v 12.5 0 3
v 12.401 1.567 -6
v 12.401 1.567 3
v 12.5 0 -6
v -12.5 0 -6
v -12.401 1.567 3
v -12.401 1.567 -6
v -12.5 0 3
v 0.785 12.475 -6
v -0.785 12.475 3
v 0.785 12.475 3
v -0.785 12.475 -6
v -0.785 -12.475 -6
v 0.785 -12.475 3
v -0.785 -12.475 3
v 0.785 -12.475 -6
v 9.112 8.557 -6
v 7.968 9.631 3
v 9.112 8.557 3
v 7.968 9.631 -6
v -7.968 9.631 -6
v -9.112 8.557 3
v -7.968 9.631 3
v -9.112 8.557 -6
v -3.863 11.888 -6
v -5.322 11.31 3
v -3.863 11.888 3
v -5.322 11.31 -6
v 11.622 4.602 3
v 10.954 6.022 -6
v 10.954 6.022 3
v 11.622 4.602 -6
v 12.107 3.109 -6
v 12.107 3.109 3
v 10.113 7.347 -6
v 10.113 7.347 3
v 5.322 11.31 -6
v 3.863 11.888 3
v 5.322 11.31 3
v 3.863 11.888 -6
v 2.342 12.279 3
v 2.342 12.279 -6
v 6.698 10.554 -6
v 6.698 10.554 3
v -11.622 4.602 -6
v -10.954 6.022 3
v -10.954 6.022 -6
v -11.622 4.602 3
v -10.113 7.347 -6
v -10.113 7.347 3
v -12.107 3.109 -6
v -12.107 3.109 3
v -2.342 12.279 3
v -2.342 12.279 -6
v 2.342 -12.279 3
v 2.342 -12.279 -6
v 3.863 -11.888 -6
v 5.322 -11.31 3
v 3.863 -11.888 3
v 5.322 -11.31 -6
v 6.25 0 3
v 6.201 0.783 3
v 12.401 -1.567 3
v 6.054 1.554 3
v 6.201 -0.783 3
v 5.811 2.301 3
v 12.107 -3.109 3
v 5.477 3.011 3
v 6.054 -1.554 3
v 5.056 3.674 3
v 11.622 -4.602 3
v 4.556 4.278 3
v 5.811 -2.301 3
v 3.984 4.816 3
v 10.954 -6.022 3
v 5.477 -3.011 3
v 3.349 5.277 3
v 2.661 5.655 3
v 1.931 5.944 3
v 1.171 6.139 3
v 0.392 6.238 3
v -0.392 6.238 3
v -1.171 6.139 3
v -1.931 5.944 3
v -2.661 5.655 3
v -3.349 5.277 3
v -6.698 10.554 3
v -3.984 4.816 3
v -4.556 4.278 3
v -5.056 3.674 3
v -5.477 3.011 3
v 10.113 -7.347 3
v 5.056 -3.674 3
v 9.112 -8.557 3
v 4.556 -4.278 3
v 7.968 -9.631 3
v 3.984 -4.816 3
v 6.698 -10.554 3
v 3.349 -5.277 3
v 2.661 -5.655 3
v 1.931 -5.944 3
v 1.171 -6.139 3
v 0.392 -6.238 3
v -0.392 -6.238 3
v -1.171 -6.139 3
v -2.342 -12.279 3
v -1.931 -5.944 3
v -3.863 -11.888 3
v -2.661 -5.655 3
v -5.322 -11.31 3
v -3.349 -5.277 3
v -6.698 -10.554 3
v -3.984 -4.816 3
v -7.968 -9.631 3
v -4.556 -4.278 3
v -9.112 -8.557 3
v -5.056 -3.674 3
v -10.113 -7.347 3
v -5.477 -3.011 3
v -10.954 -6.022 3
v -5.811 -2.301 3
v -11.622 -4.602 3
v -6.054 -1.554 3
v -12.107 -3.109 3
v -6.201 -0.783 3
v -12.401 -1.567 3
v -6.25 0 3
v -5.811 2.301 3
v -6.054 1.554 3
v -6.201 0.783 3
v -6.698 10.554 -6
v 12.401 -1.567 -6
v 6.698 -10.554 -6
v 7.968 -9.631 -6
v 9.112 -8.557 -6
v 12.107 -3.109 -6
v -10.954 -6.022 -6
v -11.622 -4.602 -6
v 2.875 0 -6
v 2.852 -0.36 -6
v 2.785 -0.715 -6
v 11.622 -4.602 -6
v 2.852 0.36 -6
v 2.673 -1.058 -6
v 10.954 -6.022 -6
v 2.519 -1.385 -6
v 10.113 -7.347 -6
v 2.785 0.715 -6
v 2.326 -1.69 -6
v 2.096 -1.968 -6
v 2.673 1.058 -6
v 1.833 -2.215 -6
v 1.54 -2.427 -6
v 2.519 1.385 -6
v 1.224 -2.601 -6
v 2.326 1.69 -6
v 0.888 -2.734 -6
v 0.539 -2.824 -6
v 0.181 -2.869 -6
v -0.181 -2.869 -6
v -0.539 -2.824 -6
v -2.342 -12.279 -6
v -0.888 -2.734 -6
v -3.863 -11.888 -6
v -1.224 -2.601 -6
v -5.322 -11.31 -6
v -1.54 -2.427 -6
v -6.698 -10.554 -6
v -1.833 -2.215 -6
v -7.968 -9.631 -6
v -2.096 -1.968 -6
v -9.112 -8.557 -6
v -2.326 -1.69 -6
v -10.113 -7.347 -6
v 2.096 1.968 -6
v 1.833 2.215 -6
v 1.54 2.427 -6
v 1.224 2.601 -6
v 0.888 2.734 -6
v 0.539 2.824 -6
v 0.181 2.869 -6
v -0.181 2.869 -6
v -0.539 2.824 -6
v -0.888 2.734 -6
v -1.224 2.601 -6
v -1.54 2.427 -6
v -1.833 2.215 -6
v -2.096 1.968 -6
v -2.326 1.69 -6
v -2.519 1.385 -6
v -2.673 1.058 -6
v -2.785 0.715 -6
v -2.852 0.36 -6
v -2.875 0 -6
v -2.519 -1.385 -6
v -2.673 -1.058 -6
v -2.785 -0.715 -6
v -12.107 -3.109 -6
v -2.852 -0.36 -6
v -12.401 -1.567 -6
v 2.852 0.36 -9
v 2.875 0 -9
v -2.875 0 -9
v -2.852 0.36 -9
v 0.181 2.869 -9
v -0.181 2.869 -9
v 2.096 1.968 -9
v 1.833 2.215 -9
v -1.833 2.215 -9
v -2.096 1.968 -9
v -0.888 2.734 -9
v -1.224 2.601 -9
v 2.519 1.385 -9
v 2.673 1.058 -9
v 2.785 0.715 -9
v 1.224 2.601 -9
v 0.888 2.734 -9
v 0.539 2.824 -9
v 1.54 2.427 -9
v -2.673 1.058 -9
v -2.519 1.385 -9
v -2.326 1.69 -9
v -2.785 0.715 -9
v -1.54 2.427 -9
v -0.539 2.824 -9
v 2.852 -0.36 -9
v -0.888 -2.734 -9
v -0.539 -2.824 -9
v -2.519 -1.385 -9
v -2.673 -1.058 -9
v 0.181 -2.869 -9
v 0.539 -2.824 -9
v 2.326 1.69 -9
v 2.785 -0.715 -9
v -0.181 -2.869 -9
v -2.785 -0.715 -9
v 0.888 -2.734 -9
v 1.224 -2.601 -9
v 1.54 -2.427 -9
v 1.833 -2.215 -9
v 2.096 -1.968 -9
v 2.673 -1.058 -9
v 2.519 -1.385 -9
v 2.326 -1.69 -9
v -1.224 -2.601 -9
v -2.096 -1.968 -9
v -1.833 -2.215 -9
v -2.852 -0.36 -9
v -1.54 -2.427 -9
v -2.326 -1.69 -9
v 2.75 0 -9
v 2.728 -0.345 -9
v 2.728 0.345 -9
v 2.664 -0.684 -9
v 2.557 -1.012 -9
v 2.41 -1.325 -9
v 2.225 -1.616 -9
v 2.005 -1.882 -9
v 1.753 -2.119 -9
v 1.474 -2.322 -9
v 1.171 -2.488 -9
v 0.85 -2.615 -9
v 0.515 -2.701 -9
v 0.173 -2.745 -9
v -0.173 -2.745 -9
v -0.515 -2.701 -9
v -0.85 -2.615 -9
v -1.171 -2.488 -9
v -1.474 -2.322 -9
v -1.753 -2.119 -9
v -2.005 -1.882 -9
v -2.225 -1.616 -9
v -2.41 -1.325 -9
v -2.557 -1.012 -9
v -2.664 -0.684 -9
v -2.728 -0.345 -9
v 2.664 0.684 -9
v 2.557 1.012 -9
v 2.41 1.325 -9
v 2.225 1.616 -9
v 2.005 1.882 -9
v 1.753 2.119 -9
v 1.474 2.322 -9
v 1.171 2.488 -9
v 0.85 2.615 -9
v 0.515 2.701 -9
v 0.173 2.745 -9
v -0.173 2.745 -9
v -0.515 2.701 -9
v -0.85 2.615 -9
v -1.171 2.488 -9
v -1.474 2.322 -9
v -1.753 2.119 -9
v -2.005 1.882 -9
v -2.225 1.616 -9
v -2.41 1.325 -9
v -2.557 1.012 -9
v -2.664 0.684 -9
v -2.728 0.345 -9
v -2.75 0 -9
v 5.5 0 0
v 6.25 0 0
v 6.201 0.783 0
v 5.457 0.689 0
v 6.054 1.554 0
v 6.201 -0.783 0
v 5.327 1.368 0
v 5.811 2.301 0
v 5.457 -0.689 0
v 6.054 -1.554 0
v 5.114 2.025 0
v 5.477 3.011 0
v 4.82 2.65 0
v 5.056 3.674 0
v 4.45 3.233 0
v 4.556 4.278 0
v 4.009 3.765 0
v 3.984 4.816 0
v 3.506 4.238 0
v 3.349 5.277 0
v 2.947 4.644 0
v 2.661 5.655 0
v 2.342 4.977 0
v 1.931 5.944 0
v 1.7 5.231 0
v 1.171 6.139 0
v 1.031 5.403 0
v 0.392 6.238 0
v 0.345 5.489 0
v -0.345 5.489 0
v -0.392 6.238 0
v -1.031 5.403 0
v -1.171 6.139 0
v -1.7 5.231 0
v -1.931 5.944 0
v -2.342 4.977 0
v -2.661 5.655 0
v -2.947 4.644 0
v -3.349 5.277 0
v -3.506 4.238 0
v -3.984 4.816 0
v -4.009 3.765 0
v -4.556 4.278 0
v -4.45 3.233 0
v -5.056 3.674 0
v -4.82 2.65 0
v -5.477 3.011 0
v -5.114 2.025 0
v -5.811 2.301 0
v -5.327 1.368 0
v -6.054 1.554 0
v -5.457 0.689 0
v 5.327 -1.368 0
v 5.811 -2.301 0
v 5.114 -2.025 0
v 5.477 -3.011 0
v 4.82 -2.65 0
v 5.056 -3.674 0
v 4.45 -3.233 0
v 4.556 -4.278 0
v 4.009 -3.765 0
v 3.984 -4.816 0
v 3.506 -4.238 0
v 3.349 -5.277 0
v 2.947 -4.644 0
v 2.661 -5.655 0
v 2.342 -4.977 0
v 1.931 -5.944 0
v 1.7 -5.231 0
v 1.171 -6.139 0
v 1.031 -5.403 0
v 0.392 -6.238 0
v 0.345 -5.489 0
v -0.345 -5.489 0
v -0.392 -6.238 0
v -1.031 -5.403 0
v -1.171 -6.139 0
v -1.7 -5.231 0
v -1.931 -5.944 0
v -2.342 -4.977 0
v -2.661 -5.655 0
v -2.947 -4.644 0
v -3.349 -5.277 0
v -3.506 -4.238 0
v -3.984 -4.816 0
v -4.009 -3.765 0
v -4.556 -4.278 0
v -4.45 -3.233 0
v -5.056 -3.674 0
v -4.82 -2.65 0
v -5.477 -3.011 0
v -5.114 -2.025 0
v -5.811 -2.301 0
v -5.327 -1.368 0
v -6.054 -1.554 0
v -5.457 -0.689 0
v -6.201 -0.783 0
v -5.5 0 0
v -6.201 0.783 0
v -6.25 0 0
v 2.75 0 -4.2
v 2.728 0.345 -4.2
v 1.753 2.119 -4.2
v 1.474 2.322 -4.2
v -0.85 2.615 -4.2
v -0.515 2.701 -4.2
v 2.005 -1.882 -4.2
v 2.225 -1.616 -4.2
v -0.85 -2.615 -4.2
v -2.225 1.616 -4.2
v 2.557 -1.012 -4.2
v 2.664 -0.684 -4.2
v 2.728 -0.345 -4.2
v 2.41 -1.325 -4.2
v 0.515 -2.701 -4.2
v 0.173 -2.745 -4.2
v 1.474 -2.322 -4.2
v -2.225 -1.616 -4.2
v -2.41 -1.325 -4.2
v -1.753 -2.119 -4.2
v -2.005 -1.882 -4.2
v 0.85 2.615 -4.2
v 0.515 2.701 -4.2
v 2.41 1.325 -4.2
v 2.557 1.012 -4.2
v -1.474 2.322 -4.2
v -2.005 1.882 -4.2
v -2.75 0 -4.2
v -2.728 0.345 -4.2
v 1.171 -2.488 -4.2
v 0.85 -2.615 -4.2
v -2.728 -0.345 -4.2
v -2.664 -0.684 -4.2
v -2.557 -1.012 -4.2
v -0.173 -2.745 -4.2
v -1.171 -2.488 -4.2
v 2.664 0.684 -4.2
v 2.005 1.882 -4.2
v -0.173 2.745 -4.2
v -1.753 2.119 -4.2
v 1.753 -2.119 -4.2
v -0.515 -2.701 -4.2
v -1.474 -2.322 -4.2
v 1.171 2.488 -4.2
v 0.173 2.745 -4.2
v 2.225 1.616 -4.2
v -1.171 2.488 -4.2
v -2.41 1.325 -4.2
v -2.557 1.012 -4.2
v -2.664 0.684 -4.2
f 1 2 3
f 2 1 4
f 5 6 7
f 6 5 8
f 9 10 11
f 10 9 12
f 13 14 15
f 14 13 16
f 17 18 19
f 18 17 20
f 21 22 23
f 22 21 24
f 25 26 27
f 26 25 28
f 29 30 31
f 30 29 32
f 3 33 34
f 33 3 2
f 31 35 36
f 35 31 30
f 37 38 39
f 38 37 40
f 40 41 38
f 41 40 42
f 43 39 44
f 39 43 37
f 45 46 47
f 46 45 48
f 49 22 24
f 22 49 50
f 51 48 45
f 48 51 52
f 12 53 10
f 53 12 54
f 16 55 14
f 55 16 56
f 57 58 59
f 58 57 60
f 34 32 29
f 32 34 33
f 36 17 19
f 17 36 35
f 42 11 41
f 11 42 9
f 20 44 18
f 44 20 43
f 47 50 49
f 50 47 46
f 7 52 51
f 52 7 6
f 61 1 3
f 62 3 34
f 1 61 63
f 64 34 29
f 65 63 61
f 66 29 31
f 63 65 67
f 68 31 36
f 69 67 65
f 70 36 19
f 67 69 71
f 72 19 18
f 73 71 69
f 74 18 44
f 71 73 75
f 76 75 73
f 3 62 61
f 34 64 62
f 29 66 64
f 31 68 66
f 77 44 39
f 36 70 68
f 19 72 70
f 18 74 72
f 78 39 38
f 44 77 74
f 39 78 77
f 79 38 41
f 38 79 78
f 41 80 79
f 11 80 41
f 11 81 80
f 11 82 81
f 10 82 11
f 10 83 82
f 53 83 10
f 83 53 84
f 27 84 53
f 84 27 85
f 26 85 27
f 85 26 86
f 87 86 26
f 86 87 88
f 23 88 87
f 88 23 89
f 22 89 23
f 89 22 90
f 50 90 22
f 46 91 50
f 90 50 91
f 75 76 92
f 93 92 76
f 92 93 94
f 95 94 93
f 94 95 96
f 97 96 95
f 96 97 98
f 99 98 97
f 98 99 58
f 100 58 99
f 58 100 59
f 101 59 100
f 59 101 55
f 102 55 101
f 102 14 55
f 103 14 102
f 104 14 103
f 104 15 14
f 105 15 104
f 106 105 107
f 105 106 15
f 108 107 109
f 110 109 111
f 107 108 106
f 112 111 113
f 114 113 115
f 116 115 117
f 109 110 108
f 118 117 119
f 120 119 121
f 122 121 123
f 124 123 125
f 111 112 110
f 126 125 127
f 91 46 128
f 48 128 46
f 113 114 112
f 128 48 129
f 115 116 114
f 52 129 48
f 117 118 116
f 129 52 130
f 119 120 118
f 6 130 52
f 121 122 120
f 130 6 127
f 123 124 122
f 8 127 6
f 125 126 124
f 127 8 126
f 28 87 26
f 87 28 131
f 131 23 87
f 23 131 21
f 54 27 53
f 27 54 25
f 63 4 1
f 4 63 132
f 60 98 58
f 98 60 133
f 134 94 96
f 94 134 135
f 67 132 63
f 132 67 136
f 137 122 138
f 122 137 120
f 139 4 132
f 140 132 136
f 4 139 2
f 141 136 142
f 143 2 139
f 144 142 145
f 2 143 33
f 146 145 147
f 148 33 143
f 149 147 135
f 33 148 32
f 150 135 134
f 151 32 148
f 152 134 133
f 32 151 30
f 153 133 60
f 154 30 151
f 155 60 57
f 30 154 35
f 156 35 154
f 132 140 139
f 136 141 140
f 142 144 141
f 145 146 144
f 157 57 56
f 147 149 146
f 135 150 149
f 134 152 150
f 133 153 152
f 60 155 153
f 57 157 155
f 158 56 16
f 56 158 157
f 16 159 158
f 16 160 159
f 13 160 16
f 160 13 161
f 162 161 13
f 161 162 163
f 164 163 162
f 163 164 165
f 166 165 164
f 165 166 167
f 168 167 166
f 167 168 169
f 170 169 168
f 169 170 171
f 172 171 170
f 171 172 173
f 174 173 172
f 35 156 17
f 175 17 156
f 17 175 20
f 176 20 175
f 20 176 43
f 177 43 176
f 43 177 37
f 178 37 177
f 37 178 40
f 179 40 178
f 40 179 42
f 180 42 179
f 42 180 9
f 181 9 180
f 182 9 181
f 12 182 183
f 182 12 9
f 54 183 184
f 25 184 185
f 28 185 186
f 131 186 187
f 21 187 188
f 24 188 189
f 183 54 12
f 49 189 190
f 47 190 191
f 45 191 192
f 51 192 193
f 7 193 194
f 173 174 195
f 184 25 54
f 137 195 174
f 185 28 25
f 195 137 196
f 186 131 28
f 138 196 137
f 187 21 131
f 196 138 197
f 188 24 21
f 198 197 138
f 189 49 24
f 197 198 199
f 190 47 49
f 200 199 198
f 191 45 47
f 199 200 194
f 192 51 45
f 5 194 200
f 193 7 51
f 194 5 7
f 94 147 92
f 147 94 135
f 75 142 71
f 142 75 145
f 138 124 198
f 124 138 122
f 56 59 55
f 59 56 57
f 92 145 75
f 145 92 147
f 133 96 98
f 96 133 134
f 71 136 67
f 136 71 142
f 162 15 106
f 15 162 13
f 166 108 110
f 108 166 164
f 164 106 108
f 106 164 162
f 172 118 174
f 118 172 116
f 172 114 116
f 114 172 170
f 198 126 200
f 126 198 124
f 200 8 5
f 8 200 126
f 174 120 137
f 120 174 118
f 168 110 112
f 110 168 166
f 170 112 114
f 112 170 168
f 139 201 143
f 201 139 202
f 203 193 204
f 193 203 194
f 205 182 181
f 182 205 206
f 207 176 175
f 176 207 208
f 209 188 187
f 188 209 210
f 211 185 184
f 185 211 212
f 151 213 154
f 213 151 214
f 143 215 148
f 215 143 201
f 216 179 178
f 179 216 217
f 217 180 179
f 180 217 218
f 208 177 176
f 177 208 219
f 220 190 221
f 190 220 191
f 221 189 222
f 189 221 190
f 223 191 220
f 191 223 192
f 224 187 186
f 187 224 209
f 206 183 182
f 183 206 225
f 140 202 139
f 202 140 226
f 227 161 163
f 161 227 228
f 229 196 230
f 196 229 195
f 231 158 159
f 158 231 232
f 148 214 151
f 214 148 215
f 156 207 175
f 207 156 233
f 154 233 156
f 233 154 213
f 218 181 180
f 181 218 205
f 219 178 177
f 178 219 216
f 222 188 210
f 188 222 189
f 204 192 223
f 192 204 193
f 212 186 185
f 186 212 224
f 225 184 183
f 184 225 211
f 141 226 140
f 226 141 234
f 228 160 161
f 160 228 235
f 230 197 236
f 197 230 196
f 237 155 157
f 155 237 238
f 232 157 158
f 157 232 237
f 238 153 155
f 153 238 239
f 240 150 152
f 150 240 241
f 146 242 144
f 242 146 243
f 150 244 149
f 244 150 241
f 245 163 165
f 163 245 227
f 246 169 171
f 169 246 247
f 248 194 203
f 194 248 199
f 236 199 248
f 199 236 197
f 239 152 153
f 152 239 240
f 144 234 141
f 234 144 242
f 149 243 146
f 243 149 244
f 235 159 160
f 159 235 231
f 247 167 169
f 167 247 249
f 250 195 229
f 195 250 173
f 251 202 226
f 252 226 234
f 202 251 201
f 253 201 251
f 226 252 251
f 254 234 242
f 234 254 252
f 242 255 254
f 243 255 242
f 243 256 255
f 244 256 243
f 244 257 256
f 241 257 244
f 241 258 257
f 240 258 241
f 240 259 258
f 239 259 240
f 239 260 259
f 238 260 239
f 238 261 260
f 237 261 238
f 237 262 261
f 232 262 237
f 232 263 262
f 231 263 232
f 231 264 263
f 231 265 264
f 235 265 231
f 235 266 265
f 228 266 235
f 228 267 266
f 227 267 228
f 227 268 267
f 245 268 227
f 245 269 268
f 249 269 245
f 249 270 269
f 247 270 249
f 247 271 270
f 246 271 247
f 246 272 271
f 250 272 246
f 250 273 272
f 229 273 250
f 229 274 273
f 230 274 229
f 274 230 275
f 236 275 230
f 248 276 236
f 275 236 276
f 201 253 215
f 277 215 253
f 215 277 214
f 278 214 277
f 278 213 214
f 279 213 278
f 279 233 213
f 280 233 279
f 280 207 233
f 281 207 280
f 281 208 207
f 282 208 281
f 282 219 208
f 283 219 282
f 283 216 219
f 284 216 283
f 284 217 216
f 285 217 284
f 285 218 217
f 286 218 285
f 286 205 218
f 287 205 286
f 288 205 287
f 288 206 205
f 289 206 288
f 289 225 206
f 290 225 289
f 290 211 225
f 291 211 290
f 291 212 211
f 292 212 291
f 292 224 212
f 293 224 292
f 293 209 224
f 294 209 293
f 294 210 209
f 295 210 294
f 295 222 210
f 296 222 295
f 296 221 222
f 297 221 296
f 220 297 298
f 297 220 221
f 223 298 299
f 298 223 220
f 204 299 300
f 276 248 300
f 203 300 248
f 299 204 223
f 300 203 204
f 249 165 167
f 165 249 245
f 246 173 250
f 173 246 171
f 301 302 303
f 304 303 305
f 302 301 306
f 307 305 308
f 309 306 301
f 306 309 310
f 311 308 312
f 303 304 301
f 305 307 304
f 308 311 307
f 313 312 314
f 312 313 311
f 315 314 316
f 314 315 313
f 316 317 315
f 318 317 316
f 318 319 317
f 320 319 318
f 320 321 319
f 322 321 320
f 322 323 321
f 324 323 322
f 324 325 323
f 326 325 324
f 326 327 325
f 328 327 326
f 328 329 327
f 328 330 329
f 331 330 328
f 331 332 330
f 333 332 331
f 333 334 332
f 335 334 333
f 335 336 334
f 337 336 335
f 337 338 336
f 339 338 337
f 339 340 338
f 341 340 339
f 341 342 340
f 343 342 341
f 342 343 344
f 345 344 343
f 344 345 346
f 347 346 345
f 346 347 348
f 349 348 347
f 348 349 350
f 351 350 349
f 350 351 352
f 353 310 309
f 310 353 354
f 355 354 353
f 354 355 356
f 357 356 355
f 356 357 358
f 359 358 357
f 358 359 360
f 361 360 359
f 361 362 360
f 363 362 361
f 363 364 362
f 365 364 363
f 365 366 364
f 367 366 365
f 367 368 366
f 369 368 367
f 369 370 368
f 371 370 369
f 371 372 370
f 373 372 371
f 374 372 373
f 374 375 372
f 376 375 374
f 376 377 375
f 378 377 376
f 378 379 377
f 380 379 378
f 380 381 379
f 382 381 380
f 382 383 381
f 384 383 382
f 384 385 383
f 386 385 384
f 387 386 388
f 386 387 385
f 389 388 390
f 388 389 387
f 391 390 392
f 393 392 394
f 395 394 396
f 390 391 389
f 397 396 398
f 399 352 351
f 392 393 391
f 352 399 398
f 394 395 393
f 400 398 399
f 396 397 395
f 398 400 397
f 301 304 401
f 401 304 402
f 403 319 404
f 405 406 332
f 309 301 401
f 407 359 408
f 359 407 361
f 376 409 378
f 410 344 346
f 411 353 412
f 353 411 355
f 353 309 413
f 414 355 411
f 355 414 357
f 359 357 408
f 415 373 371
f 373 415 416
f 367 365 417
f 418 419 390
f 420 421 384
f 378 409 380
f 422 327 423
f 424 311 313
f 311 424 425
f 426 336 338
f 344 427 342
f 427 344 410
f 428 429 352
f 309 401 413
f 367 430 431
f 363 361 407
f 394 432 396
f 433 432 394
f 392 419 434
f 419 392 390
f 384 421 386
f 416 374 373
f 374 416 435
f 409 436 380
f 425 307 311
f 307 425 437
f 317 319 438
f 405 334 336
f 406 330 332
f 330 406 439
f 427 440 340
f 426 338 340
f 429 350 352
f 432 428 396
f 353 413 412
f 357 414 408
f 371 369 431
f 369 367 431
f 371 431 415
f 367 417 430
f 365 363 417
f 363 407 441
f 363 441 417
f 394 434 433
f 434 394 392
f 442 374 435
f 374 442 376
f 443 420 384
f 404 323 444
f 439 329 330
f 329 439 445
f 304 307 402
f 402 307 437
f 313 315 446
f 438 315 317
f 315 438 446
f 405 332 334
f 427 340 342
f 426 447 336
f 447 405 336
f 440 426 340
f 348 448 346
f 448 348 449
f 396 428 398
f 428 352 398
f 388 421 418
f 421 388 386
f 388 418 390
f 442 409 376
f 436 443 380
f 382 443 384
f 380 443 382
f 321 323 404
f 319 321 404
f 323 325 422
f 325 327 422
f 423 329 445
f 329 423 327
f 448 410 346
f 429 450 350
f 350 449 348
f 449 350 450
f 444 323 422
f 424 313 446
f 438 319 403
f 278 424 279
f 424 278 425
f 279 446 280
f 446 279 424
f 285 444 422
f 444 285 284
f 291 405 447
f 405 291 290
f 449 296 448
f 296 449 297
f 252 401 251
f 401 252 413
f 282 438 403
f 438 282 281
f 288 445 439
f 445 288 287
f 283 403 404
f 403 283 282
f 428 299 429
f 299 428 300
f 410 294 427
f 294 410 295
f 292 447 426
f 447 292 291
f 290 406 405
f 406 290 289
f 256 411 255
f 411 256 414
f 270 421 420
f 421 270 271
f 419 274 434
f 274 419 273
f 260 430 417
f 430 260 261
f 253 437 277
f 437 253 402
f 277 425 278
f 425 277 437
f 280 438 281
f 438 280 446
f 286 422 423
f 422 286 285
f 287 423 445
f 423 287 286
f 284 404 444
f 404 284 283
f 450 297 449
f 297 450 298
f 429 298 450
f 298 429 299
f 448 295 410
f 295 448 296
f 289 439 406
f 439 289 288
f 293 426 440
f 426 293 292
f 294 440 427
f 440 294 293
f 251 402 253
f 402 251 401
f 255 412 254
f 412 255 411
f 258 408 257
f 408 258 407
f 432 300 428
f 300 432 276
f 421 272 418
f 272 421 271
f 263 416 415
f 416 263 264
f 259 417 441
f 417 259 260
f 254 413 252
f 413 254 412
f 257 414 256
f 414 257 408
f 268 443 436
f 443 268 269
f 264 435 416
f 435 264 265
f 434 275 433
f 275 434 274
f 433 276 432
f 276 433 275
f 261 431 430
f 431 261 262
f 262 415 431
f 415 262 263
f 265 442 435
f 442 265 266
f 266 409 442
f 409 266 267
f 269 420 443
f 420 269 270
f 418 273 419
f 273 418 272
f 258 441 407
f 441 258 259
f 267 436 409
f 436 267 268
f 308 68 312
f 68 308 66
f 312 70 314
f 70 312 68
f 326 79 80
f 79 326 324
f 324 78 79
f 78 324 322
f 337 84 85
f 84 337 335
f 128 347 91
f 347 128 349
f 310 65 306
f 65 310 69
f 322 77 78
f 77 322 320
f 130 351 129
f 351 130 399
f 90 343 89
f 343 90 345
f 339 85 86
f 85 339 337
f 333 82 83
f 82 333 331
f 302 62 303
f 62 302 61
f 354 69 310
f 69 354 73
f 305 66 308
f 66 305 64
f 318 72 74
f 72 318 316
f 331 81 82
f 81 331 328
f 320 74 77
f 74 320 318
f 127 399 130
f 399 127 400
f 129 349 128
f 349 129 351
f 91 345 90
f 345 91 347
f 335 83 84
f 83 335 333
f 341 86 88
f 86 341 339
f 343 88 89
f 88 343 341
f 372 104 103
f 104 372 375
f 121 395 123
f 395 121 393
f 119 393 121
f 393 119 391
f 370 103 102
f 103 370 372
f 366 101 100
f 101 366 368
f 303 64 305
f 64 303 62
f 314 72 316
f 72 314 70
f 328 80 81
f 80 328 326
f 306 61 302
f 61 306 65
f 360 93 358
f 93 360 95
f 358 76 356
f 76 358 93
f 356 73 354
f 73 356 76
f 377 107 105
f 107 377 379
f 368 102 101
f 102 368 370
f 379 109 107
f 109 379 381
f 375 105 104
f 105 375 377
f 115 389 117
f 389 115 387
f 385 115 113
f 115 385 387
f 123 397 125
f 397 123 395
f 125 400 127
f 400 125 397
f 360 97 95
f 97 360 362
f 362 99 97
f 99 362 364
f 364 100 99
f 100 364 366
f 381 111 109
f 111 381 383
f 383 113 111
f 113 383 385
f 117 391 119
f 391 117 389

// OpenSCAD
$fn = 50;

difference() {
	union() {
		translate(v = [0, 0, -6.0]) {
			cylinder(h = 9, r = 12.5);
		}
		#translate(v = [0, 0, -9.0]) {
			cylinder(h = 9, r = 2.875);
		}
	}
	union() {
		translate(v = [0, 0, 0]) {
			rotate(a = [0, 0, 0]) {
				difference() {
					union() {
						translate(v = [0, 0, -9.0]) {
							cylinder(h = 9, r = 2.25);
						}
						translate(v = [0, 0, -4.2]) {
							cylinder(h = 4.2, r1 = 2.75, r2 = 5.5);
						}
						translate(v = [0, 0, -9.0]) {
							cylinder(h = 9, r = 2.75);
						}
						translate(v = [0, 0, -9.0]) {
							cylinder(h = 9, r = 2.25);
						}
					}
					union();
				}
			}
		}
		#cylinder(h = 3, r = 6.25);
	}
}
